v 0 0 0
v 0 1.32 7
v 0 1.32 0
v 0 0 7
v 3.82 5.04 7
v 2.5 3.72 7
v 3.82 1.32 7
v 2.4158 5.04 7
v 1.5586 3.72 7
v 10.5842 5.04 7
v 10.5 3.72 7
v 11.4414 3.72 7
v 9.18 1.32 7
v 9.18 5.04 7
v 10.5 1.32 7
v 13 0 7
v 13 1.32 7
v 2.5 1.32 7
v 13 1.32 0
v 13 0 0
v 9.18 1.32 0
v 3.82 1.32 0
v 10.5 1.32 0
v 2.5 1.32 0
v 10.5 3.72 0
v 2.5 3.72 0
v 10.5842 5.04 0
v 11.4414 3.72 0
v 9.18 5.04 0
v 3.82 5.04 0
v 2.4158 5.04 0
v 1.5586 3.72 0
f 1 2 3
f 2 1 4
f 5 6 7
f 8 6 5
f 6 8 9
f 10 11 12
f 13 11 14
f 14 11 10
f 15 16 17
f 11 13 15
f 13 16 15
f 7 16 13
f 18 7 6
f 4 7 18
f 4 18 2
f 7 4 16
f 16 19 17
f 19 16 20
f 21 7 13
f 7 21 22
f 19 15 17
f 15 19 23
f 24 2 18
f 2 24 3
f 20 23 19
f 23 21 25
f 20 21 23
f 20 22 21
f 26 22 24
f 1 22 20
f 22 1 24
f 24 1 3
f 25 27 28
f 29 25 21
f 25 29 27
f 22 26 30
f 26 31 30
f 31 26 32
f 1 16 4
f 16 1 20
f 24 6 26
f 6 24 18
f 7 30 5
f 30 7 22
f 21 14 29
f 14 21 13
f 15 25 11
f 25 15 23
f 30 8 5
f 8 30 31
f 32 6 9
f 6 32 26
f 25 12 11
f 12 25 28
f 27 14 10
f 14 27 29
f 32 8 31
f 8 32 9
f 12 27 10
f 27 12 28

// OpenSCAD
// file: ../configuration.scad
/*
	Konfiguracni soubor 3D tiskarny RebeliX X2
	
	Sledujte nas na:		  
			www.RepRap4U.cz
			www.facebook.com/RebeliX.cz
			https://twitter.com/reprap4u
			https://plus.google.com/+Reprap4uCz-3Dtiskarna-RebeliX
*/

/*================ Slic3r nastaveni ==========================*/

// Vyska vrstvy pro tisknuti dilu [mm]
layer_height = 0.3;

// Sirka vytlacovaneho materialu [mm]
extrusion_width = 0.66; //Slic3r->Print Settings->Advanced->Default extrusion width

/*==================== M6 sroub ==============================*/

// Rezerva prumeru hlavy sroubu [mm]
space = 1;

// Prumer hlavy M6 sroubu (pricte se rezerva) [mm]
M6_head_diameter = 10.6+space;
//M6_head_diameter = 12+space;

// Vyska hlavy M6 sroubu (dulezite pro zapusteni hlavy sroubu do plastu) [mm]
M6_head_height = 3.6;
//M6_head_height = 4.5;

// Delka sroubu M6 [mm]
// M6x12
M6_lenght = 12;

/*=================== Nastaveni dilu =========================*/

// Posun Z zakladny
z_base_offset = 11;

// Tloustka rohovych spojek
// 5 mm => sroub M6x14 s podlozkou
// 3 mm => sroub M6x12 s podlozkou
coupler_thickness = 5;

// Prumer 8mm tyce
rod_8mm_d = 8.2;

// Posun drzacku mezi x-motor a x-end
x_holder_position = 6.5;

/*======================== Motory ============================*/

// Delka motoru (ovlivni dily a delky tyci pro osy Z a Y)
//SX17-1003LQFE (doporuceno hlavne na osu Z)
motor_length = 29.5;
//SX17-1003 (doporuceno hlavne na osu Z), SX17-0503LQEF
//motor_length = 34;
//SX17-1005
//motor_length = 40;
//SX17-0905 - zde je jiz problem s velkou vyskou motoru na ose Z - musi se upravit endstop-holder
//motor_length = 48;

/*================ Remeny a remenicky ========================*/

// GT2 
belt_tooth_distance = 2;
belt_tooth_ratio = 0.5;

// T2.5
//belt_tooth_distance = 2.5;
//belt_tooth_ratio = 0.68;
// main file
// RebeliX
//
// cable-holder
// GNU GPL v3
// Martin Neruda <neruda@reprap4u.cz>
// http://www.reprap4u.cz

include <../configuration.scad>

width = 13;
height = 7;

// Vyrez v hlinikovem profilu
space = 8.2;

difference(){
  union(){
	cube([width,2*extrusion_width,height]);
	translate([width/2 - space/2+0.1,2*extrusion_width,0]) cube([2*extrusion_width,2*extrusion_width+2.2,height]);
	translate([width/2 + space/2 - 2*extrusion_width-0.1,2*extrusion_width,0]) cube([2*extrusion_width,2*extrusion_width+2.2,height]);

	translate([width/2 - space/2 + 2*extrusion_width+0.1,2*extrusion_width + 2.4 + 2*extrusion_width,0]) rotate([0,0,-180]) cube([2.5,2*extrusion_width,height]);
	translate([width/2 + space/2 - 2*extrusion_width-0.1,2*extrusion_width + 2.4,0]) cube([2.5,2*extrusion_width,height]);
	}
	// Seriznuti "pacicek"
	translate([0,2*extrusion_width,-0.1]) rotate([0,0,57]) cube([width,width,width]);
	translate([width,2*extrusion_width,-0.1]) rotate([0,0,33]) cube([width,width,width]);
}	
